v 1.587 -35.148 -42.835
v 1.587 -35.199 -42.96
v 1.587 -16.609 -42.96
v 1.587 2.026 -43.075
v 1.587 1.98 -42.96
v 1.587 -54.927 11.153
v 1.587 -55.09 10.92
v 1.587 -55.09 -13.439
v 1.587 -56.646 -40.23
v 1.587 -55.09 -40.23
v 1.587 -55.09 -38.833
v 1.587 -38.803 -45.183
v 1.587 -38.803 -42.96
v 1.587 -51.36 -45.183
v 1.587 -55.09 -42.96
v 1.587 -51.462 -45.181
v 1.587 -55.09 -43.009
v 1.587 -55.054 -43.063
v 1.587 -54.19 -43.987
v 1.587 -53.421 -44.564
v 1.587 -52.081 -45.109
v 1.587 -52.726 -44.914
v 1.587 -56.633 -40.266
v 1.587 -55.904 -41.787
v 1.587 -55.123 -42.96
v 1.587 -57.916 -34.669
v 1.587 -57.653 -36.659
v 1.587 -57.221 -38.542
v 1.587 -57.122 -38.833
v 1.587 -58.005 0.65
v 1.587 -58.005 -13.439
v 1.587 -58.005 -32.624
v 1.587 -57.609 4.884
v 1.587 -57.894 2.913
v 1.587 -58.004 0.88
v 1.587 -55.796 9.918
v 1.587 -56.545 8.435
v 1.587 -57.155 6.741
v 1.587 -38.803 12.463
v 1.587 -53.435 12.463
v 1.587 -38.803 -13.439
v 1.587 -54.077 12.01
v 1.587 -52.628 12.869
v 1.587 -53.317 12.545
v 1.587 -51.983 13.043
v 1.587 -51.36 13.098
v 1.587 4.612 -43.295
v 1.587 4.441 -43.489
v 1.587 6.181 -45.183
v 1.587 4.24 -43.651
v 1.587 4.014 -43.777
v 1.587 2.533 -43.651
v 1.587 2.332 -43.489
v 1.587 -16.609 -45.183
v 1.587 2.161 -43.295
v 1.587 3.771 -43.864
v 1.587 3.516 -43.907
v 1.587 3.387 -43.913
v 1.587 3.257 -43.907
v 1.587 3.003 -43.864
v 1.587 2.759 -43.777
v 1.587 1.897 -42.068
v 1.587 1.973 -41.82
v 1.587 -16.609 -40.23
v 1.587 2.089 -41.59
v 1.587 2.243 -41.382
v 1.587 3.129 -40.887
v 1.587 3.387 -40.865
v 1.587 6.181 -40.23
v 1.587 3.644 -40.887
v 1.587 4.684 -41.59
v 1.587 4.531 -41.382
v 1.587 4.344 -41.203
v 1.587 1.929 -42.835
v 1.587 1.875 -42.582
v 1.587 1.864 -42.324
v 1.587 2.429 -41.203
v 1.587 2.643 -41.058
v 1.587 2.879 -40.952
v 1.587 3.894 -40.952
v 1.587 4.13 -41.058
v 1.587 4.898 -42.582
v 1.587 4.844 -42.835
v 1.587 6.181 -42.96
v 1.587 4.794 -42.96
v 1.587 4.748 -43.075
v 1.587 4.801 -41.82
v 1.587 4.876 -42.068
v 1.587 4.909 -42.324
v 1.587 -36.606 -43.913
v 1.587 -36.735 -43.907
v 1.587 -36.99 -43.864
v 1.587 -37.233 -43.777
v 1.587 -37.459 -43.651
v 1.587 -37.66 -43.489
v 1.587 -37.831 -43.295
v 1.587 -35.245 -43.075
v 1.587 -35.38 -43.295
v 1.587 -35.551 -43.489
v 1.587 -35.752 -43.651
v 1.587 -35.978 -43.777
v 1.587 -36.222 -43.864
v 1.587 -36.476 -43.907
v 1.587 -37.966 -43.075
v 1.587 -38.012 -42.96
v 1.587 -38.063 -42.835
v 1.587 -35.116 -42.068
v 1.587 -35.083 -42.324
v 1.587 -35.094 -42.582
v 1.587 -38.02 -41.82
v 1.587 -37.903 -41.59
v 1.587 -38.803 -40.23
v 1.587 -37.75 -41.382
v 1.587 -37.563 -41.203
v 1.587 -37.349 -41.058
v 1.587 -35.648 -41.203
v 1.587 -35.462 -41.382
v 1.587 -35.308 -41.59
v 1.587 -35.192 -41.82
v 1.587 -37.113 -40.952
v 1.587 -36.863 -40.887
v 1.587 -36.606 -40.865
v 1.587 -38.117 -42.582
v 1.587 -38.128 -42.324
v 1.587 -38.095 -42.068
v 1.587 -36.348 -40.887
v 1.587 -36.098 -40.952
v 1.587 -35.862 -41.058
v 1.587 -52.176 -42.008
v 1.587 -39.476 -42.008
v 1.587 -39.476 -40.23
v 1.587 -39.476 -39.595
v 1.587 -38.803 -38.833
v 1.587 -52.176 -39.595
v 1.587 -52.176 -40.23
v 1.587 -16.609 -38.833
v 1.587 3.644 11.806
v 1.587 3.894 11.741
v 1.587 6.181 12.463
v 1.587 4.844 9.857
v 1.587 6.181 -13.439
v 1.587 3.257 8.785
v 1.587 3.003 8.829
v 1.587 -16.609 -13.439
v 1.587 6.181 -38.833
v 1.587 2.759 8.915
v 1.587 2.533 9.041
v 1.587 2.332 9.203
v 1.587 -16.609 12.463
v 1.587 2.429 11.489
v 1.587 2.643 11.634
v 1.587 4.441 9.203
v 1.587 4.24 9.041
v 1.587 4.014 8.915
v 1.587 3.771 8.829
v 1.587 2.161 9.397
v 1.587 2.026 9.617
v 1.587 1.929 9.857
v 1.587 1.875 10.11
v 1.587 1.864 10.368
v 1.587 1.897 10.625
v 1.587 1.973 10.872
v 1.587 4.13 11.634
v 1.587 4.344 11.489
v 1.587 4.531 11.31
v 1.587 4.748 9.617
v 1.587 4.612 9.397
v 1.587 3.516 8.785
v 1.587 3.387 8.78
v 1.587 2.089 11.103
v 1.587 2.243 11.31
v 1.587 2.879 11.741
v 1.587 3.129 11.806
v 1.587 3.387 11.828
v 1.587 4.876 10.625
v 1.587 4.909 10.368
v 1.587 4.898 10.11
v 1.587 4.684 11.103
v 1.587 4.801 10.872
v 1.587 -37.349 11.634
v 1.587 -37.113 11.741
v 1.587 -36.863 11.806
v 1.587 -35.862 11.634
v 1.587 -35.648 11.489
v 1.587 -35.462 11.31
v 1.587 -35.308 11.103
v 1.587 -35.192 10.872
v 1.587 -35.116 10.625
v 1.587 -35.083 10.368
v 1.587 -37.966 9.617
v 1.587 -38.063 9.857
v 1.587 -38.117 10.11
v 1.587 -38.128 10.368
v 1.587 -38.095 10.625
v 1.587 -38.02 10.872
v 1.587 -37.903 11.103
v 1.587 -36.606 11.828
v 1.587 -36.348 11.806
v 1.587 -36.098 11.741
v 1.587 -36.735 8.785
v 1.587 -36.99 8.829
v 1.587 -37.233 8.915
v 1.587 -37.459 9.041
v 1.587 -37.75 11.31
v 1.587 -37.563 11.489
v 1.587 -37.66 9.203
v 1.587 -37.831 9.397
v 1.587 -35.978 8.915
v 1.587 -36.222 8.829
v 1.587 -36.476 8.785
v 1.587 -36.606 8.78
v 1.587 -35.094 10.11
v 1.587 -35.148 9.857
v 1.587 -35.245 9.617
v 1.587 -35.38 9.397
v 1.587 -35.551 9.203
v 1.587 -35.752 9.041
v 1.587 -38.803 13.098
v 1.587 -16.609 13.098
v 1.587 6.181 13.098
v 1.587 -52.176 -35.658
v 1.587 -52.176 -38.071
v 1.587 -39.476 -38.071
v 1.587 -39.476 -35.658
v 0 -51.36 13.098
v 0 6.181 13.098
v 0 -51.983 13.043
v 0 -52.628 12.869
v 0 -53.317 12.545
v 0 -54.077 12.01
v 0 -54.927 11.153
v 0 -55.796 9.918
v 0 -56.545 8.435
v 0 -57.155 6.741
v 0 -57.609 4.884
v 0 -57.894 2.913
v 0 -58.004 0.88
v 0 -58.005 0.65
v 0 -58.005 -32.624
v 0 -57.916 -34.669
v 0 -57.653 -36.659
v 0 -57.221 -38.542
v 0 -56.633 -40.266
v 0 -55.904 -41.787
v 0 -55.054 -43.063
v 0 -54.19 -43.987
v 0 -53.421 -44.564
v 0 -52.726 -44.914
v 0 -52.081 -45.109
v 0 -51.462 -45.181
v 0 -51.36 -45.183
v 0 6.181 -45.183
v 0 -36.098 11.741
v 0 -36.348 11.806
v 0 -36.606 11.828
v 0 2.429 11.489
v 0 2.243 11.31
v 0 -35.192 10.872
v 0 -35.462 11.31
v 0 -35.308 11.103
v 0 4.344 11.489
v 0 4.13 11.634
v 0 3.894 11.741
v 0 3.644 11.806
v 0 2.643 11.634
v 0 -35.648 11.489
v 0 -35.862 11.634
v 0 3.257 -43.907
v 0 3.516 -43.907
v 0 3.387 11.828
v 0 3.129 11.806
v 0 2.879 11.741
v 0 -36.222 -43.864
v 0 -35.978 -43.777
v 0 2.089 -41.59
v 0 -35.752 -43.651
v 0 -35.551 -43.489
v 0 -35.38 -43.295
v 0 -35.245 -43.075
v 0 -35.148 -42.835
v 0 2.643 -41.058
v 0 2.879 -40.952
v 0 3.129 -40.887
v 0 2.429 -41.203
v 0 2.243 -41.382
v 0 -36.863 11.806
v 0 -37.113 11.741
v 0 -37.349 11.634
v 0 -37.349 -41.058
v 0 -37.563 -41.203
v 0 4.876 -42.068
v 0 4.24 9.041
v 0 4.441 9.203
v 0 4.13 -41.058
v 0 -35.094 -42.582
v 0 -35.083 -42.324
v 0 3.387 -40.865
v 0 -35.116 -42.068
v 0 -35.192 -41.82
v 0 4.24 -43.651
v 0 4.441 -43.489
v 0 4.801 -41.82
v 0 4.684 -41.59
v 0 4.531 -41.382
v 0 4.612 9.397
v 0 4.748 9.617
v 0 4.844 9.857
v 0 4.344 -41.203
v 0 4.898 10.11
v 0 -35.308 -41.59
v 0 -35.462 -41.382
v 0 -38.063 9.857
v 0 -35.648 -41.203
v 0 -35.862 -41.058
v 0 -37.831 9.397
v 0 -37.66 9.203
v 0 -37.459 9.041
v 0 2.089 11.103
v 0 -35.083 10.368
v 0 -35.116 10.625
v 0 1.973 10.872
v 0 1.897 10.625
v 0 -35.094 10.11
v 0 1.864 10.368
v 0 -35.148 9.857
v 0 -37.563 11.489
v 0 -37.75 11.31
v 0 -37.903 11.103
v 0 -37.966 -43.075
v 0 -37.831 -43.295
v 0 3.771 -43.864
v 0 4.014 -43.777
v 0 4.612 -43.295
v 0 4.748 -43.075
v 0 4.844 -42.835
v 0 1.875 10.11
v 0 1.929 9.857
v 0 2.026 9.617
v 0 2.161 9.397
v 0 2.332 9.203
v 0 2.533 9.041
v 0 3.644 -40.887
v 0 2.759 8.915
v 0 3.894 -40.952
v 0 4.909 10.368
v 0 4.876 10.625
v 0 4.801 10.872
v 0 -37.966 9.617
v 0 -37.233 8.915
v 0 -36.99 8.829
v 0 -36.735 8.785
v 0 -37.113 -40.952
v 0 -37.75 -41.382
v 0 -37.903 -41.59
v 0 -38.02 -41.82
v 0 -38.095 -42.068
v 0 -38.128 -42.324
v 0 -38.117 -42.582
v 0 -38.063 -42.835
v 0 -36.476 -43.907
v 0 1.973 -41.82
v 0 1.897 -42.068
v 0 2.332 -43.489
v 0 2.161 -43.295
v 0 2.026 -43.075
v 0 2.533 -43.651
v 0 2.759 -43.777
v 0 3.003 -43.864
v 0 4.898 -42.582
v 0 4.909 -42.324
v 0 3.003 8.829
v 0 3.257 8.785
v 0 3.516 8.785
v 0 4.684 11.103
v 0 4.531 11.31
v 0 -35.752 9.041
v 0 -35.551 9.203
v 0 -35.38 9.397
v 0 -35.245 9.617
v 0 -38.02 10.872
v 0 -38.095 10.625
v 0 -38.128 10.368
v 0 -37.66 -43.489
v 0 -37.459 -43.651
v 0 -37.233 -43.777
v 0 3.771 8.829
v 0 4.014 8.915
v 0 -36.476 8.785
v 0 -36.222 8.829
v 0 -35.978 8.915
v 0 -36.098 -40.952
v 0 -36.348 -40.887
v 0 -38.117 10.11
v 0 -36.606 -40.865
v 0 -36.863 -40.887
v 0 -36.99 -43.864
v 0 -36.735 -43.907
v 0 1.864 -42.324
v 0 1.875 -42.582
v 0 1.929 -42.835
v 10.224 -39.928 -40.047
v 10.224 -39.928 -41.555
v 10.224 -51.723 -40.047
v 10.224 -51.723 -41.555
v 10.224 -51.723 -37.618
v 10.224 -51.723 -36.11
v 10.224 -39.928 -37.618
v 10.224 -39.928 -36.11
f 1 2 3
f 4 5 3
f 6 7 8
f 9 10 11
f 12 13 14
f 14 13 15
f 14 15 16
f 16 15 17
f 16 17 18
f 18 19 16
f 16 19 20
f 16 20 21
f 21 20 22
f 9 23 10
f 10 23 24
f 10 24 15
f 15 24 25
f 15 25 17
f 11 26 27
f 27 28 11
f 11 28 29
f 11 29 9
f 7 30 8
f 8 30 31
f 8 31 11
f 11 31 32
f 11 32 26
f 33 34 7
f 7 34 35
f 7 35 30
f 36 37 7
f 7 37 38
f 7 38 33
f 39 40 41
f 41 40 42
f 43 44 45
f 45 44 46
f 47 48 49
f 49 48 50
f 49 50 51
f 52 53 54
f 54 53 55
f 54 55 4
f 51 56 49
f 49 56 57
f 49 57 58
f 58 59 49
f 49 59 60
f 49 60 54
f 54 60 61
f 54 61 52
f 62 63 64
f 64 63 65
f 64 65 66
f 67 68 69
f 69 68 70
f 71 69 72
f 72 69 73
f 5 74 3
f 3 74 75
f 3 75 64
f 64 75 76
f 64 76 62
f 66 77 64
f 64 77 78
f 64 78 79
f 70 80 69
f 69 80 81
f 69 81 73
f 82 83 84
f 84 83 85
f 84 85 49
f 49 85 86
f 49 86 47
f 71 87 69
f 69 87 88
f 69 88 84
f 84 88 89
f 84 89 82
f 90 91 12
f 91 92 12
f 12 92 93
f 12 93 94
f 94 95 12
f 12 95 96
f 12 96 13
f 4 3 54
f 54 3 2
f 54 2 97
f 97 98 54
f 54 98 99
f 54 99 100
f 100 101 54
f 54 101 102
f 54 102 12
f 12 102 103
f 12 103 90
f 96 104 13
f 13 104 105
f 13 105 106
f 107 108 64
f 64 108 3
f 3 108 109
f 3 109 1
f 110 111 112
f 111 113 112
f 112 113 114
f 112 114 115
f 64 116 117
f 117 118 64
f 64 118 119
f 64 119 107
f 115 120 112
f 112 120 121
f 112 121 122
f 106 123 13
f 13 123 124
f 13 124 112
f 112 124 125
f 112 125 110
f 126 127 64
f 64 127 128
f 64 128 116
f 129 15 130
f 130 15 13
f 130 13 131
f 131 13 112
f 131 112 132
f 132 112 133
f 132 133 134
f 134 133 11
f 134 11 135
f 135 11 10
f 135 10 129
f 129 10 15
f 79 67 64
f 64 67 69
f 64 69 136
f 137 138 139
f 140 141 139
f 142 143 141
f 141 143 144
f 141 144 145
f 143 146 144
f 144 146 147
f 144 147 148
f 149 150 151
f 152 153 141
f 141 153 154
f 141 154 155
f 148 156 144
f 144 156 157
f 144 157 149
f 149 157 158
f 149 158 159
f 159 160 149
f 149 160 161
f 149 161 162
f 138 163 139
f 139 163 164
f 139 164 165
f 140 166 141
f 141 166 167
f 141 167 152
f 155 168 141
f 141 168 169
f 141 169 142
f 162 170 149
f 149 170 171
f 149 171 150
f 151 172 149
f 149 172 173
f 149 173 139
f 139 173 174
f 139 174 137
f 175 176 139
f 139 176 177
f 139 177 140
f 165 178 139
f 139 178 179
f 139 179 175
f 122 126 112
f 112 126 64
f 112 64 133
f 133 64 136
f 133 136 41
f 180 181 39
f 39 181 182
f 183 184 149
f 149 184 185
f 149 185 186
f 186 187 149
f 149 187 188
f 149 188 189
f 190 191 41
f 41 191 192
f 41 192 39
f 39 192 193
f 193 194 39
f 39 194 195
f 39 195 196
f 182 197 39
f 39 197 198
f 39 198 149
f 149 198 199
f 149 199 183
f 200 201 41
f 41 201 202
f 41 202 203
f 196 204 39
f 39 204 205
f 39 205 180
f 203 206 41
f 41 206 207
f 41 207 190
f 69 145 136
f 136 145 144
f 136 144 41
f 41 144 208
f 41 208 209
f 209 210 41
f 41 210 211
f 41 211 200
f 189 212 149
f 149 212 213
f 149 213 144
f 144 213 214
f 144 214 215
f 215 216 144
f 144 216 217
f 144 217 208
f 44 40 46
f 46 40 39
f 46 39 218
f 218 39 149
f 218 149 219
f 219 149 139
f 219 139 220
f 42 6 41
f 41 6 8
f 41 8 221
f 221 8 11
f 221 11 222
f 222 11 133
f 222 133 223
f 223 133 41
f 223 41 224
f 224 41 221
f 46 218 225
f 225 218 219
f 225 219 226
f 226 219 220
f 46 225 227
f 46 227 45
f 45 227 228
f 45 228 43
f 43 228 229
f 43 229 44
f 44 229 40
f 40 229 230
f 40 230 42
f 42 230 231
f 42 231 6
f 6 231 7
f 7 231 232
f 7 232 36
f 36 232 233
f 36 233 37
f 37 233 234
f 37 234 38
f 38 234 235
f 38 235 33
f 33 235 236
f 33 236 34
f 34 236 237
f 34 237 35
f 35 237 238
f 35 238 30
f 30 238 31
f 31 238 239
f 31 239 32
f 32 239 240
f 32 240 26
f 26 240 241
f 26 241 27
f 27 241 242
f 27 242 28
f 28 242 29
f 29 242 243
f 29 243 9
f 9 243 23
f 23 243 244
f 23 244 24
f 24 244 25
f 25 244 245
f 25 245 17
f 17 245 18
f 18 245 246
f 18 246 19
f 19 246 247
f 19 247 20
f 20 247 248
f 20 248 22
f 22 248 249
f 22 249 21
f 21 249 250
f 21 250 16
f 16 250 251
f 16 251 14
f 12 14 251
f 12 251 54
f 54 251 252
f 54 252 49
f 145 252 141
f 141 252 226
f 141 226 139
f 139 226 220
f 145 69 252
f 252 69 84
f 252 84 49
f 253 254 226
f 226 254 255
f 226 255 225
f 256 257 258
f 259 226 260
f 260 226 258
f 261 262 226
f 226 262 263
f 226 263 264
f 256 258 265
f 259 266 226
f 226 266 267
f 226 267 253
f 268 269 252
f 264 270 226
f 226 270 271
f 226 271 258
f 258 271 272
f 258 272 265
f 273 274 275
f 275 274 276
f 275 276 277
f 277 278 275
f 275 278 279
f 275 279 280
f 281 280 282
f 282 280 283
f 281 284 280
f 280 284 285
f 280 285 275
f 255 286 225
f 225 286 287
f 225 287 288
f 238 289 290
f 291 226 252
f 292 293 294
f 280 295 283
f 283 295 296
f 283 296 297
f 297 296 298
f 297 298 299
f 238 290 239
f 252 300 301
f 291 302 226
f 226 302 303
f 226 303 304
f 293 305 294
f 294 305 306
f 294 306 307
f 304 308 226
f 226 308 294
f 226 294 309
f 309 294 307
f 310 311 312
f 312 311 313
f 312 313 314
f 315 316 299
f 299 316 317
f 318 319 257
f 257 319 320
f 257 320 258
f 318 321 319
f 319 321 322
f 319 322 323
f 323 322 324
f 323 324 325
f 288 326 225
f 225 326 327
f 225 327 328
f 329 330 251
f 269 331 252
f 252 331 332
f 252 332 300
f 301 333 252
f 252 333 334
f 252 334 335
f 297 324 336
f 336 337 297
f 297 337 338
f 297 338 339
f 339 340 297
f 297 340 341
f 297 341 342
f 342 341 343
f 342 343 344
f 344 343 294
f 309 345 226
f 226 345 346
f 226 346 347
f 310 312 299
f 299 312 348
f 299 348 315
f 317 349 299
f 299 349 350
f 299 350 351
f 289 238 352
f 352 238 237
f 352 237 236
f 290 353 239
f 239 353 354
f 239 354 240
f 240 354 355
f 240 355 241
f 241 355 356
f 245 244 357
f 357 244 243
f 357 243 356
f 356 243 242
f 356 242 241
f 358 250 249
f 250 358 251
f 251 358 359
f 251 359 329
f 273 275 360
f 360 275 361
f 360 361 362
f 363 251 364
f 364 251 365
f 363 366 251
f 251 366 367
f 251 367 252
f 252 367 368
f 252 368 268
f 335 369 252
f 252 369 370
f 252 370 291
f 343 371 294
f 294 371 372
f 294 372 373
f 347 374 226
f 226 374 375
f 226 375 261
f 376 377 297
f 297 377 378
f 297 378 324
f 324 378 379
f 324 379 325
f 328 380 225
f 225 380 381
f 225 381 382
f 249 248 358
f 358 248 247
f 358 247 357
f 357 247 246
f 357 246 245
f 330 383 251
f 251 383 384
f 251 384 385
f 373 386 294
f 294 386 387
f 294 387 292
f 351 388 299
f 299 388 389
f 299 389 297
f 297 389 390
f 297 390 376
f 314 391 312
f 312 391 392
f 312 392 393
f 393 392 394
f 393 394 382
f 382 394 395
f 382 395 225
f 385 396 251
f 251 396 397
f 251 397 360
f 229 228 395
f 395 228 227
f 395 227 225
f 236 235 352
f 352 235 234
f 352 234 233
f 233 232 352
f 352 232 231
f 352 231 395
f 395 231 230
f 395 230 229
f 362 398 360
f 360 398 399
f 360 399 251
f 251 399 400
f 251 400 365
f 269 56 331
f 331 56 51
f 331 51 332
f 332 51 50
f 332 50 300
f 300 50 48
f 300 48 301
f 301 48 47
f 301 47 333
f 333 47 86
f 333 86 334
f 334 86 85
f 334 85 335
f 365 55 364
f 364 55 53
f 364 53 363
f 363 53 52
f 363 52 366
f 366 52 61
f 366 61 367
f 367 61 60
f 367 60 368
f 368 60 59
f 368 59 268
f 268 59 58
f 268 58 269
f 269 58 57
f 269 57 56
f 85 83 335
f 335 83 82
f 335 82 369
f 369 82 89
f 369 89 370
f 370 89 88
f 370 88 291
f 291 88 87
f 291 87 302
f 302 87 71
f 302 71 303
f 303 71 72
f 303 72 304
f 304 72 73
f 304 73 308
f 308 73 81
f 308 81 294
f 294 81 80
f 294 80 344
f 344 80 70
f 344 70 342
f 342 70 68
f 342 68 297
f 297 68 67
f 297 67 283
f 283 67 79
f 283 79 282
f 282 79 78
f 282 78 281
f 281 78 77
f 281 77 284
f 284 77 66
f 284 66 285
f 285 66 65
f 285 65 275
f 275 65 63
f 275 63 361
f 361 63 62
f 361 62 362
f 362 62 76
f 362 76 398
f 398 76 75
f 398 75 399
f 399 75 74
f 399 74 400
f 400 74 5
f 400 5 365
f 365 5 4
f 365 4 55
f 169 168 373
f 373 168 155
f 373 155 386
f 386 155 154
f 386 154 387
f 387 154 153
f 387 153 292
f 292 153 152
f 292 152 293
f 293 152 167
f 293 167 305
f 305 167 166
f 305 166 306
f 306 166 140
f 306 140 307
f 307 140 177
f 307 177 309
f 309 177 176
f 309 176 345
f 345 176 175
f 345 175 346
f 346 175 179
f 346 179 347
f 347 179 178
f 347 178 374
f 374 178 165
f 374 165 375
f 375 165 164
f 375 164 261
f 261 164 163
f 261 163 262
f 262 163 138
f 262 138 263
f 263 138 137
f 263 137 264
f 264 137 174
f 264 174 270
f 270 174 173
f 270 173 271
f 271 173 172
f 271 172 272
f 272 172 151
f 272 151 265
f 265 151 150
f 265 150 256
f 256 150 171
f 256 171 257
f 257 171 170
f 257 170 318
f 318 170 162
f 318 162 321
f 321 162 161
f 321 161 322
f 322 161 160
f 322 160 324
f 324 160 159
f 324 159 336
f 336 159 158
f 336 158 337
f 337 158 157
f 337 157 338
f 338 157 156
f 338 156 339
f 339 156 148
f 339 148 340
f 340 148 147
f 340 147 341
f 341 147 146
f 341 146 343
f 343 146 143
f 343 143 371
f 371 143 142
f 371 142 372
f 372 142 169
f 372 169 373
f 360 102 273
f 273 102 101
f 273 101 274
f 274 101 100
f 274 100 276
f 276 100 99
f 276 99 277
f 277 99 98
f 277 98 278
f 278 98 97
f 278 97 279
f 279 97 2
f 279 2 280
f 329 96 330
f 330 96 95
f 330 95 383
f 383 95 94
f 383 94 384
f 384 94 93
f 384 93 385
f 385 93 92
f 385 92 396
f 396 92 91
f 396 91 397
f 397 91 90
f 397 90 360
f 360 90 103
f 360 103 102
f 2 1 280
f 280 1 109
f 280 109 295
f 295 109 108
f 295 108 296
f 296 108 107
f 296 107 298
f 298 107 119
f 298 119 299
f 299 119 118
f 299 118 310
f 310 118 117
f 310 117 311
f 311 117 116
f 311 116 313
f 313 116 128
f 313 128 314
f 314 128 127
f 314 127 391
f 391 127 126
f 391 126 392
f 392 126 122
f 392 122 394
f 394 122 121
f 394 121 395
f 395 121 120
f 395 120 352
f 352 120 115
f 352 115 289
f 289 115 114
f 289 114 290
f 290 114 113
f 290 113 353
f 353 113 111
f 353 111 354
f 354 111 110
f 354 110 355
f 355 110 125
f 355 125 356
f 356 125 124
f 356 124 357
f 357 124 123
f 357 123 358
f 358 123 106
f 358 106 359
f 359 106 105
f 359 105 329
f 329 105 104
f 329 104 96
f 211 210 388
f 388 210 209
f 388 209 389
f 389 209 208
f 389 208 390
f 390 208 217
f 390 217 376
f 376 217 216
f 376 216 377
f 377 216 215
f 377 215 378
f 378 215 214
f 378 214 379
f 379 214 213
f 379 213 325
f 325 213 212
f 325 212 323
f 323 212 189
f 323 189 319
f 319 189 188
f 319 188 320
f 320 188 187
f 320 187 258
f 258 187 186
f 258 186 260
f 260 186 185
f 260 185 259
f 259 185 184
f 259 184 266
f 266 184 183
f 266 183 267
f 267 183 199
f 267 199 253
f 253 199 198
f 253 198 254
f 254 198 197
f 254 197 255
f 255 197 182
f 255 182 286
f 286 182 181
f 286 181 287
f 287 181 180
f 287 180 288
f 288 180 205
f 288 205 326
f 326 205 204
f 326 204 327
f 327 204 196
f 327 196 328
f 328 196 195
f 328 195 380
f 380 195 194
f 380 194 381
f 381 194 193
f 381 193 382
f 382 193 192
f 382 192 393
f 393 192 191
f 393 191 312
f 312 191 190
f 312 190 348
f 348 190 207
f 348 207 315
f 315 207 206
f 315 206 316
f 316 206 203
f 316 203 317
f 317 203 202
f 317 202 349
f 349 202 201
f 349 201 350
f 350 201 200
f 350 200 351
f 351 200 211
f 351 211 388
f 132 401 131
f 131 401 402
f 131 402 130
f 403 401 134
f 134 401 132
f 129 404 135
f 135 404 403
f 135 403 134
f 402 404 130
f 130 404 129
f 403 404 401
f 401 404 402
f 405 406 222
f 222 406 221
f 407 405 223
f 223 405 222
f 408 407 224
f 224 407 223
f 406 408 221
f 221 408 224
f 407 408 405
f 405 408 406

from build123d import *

# Parameters (mm, degrees)
BOSS_EXTRUDE1_DEPTH           = 1.5875
SKETCH2_R                     = 1.524
CUT_EXTRUDE1_DEPTH            = 2.54
SKETCH6_W                     = 2.413
SKETCH6_H                     = 12.7
BOSS_EXTRUDE2_DEPTH           = 8.636
BOSS_EXTRUDE2_DRAFT           = 3
BOSS_EXTRUDE2_PROFILE_2_DEPTH = 8.636
BOSS_EXTRUDE2_PROFILE_2_DRAFT = 3


with BuildPart() as part:
    # Sketch1 → Boss-Extrude1 (new body)
    with BuildSketch(Plane(origin=(0, 0, 0), x_dir=(0, 0, -1), z_dir=(1, 0, 0))):
        with BuildLine():
            Line((45.182706914, 6.18069038), (-13.097593086, 6.18069038))
            Line((-13.097593086, 6.18069038), (-13.097593086, -51.36046962))
            add(Edge.make_bspline(
                [(-13.097593086, -51.36046962), (-13.097593086, -58.00510962), (-0.650340424, -58.00510962)],
                knots=[3.141592654, 3.141592654, 3.141592654, 4.71238898, 4.71238898, 4.71238898], degree=2, weights=[1, 0.707106781, 1]))
            Line((-0.650340424, -58.00510962), (32.623659576, -58.00510962))
            add(Edge.make_bspline(
                [(32.623659576, -58.00510962), (45.182706914, -58.00510962), (45.182706914, -51.36046962)],
                knots=[4.71238898, 4.71238898, 4.71238898, 6.283185307, 6.283185307, 6.283185307], degree=2, weights=[1, 0.707106781, 1]))
            Line((45.182706914, -51.36046962), (45.182706914, -39.42246962))
            Line((45.182706914, -39.42246962), (45.182706914, 6.18069038))
        make_face()
    extrude(amount=BOSS_EXTRUDE1_DEPTH)

    # Sketch2 → Cut-Extrude1 (cut)
    with BuildSketch(Plane.ZY):
        with Locations((-42.388706914, 3.38669038)):
            Circle(SKETCH2_R)
        with Locations((10.303593086, 3.38669038)):
            Circle(SKETCH2_R)
        with Locations((-42.388706914, -36.60560962)):
            Circle(SKETCH2_R)
        with Locations((10.303593086, -36.60560962)):
            Circle(SKETCH2_R)
    extrude(amount=-CUT_EXTRUDE1_DEPTH, mode=Mode.SUBTRACT)


with BuildPart() as boss_extrude2_tool:
    # Sketch6 → Boss-Extrude2 (with draft: the straight prism first)
    with BuildSketch(Plane(origin=(1.5875, 0, 0), x_dir=(0, 0, -1), z_dir=(1, 0, 0))):
        with Locations((40.801206914, -45.82580962)):
            Rectangle(SKETCH6_W, SKETCH6_H)
    extrude(amount=BOSS_EXTRUDE2_DEPTH)
    # Boss-Extrude2: the draft: its side faces are tilted about the plane it starts from
    boss_extrude2_sides = [boss_extrude2_tool.faces().sort_by_distance(p)[0] for p in [
        (5.9055, -39.47580962, -40.801206914),
        (5.9055, -45.82580962, -39.594706914),
        (5.9055, -52.17580962, -40.801206914),
        (5.9055, -45.82580962, -42.007706914),
    ]]
    draft(boss_extrude2_sides, Plane(origin=(1.5875, 0, 0), x_dir=(0, 0, -1), z_dir=(1, 0, 0)), BOSS_EXTRUDE2_DRAFT)


with BuildPart() as part_1:
    add(part.part)

    # Boss-Extrude2: add boss_extrude2_tool
    add(boss_extrude2_tool.part)


with BuildPart() as boss_extrude2_profile_2_tool:
    # Sketch6 → Boss-Extrude2 profile 2 (with draft: the straight prism first)
    with BuildSketch(Plane(origin=(1.5875, 0, 0), x_dir=(0, 0, -1), z_dir=(1, 0, 0))):
        with Locations((36.864206914, -45.82580962)):
            Rectangle(SKETCH6_W, SKETCH6_H)
    extrude(amount=BOSS_EXTRUDE2_PROFILE_2_DEPTH)
    # Boss-Extrude2 profile 2: the draft: its side faces are tilted about the plane it starts from
    boss_extrude2_profile_2_sides = [boss_extrude2_profile_2_tool.faces().sort_by_distance(p)[0] for p in [
        (5.9055, -52.17580962, -36.864206914),
        (5.9055, -45.82580962, -38.070706914),
        (5.9055, -39.47580962, -36.864206914),
        (5.9055, -45.82580962, -35.657706914),
    ]]
    draft(boss_extrude2_profile_2_sides, Plane(origin=(1.5875, 0, 0), x_dir=(0, 0, -1), z_dir=(1, 0, 0)), BOSS_EXTRUDE2_PROFILE_2_DRAFT)


with BuildPart() as part_2:
    add(part_1.part)

    # Boss-Extrude2 profile 2: add boss_extrude2_profile_2_tool
    add(boss_extrude2_profile_2_tool.part)


solid = part_2.part
